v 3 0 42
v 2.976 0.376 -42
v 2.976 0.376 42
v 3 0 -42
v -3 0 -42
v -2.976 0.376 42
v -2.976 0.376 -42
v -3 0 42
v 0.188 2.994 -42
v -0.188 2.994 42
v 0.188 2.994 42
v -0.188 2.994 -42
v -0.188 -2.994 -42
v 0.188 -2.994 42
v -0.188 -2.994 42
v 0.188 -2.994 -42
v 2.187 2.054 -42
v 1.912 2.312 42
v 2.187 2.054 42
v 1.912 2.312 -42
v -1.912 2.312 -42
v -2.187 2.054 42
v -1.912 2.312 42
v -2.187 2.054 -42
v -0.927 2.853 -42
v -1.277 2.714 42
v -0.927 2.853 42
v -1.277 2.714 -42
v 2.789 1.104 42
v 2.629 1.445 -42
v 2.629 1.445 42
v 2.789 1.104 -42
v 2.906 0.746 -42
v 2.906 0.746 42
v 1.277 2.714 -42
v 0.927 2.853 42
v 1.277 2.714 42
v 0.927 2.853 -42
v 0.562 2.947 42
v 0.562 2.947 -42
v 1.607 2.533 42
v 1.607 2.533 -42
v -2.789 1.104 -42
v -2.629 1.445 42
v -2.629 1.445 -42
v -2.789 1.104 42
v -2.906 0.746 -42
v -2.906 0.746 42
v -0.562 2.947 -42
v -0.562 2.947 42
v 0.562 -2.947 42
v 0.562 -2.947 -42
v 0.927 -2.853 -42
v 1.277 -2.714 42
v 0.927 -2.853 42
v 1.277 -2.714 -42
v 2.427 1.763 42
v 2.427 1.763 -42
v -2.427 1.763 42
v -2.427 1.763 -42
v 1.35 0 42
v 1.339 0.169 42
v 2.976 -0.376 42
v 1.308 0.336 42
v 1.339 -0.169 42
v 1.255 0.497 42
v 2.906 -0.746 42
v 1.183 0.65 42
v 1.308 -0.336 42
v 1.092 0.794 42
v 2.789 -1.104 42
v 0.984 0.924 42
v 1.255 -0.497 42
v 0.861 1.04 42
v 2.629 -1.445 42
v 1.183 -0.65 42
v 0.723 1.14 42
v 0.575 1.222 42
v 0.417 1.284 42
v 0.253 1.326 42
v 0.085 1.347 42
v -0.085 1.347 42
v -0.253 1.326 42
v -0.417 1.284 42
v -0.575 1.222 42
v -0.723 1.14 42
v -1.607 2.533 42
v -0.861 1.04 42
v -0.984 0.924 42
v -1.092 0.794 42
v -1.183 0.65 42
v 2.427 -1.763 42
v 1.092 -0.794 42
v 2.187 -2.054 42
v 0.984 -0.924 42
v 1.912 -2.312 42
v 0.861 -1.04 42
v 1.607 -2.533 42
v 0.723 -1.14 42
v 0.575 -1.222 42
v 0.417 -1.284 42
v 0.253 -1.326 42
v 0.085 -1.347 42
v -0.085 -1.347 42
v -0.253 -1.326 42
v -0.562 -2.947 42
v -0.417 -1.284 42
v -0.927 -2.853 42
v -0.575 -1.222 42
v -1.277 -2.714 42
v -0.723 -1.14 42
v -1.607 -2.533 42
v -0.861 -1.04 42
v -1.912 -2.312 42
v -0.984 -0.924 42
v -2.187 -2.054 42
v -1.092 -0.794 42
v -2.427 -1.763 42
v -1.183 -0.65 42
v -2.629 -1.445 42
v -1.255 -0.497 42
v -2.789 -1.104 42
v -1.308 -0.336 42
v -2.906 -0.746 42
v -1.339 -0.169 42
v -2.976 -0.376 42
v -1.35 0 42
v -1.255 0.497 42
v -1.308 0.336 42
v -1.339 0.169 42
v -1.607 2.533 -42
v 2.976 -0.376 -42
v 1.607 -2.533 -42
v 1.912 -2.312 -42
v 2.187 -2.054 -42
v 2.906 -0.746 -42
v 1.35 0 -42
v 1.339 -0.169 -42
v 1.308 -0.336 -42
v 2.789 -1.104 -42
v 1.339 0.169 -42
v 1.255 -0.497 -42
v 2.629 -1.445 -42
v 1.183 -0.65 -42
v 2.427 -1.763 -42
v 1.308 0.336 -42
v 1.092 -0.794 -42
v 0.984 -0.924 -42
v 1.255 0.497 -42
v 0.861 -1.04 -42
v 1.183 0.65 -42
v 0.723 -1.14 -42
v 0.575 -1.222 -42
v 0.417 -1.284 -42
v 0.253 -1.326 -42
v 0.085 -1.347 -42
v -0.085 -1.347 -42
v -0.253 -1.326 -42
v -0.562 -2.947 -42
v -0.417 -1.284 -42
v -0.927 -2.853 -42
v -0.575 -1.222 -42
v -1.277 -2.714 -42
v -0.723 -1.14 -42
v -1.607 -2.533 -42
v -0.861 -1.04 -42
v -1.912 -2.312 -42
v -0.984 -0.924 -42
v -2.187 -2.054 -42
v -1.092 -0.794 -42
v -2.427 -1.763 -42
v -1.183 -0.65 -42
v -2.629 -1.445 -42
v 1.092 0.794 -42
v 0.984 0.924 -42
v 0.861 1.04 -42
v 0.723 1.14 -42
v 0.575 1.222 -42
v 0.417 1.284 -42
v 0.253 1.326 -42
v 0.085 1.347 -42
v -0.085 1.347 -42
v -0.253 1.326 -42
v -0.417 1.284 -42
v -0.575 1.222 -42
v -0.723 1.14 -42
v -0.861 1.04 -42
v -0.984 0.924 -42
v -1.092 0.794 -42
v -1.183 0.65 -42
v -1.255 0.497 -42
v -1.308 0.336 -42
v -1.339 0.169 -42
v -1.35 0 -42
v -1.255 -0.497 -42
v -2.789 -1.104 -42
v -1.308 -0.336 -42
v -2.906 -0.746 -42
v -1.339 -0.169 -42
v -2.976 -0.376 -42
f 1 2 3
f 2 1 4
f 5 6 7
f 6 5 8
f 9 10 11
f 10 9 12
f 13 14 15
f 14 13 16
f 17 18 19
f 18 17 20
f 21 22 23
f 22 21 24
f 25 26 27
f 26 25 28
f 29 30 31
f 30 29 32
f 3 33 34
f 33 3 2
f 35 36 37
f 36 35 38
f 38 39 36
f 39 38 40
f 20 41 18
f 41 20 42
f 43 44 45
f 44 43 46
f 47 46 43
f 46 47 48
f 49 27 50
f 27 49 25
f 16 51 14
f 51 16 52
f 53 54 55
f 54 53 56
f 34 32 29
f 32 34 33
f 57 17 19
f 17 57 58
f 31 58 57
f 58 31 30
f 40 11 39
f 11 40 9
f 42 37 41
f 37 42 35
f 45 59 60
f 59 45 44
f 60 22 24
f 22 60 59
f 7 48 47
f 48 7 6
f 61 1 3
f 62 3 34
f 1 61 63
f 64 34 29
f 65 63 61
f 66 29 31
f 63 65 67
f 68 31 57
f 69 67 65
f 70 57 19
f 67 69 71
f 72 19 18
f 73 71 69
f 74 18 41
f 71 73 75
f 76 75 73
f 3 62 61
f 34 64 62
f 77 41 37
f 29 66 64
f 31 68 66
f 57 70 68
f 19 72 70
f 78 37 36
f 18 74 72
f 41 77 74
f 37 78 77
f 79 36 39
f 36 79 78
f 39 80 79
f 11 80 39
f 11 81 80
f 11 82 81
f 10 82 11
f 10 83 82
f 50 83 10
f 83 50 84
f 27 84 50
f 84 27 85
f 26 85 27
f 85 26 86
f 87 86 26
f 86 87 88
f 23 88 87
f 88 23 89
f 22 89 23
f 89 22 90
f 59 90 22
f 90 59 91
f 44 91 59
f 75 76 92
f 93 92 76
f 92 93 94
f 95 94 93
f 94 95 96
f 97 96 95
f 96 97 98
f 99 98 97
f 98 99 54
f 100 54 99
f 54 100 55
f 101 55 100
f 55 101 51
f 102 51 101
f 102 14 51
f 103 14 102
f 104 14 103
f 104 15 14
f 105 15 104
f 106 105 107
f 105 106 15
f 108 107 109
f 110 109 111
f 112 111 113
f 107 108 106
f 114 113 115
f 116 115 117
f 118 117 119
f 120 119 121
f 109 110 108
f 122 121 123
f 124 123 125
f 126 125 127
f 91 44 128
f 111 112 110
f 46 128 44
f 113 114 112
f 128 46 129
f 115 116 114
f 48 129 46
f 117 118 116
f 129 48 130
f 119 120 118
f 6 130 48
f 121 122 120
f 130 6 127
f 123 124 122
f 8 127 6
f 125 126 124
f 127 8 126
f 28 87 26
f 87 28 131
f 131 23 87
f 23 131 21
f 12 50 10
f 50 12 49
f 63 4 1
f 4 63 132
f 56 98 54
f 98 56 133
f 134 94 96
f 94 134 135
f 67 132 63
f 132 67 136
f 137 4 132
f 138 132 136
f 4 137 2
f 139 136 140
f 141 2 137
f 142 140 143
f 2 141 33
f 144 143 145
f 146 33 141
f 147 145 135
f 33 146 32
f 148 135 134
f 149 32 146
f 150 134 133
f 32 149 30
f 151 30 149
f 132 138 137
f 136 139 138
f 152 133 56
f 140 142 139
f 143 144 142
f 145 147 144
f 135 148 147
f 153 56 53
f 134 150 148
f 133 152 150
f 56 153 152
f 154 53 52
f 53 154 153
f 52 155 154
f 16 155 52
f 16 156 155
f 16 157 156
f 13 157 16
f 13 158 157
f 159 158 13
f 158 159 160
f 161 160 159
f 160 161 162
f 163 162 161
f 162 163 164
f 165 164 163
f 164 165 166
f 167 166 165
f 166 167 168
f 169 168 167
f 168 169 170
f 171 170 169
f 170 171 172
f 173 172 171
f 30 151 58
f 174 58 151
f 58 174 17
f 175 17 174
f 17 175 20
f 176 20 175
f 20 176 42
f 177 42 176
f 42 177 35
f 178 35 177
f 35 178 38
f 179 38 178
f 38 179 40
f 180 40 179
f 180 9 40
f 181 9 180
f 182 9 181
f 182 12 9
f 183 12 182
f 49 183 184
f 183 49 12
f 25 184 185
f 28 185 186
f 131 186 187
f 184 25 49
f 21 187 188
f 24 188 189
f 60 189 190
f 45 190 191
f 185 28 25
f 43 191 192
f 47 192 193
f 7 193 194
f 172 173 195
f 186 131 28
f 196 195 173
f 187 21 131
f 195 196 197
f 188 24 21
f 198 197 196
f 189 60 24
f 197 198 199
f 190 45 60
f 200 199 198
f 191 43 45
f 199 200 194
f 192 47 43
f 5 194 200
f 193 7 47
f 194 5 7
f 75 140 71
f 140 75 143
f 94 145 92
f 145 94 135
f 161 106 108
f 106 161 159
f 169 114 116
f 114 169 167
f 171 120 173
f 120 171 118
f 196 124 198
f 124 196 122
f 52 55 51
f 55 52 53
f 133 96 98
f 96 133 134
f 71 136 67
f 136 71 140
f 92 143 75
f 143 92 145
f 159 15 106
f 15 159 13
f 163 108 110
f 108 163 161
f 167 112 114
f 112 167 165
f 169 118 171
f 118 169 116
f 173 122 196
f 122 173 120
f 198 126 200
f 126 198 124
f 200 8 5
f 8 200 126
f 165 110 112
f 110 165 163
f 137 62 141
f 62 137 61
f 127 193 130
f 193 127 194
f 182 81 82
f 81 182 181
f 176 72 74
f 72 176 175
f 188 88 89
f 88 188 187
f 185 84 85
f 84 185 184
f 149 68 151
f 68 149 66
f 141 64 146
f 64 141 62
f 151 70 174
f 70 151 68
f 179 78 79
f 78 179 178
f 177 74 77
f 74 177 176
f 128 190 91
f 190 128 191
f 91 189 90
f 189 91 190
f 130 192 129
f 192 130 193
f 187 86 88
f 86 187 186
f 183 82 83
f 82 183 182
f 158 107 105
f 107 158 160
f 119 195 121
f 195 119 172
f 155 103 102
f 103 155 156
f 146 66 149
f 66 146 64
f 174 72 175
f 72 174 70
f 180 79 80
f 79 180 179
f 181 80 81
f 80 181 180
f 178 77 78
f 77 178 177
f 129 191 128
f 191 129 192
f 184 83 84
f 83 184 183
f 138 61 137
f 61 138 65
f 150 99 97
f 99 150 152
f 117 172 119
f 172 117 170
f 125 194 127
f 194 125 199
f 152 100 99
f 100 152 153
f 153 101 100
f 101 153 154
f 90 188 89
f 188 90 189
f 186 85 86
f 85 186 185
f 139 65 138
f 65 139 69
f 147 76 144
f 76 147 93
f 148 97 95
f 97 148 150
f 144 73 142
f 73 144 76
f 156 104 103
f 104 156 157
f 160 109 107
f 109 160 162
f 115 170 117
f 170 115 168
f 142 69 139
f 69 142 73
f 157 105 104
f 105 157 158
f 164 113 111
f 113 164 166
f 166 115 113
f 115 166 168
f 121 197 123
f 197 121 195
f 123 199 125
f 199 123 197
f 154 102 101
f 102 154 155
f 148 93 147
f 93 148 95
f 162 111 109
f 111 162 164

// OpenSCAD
$fn = 50;


difference() {
	union() {
		translate(v = [0, 0, -42.0000000000]) {
			cylinder(h = 84, r = 3.0000000000);
		}
	}
	union() {
		translate(v = [0, 0, -100.0000000000]) {
			cylinder(h = 200, r = 1.3500000000);
		}
	}
}
